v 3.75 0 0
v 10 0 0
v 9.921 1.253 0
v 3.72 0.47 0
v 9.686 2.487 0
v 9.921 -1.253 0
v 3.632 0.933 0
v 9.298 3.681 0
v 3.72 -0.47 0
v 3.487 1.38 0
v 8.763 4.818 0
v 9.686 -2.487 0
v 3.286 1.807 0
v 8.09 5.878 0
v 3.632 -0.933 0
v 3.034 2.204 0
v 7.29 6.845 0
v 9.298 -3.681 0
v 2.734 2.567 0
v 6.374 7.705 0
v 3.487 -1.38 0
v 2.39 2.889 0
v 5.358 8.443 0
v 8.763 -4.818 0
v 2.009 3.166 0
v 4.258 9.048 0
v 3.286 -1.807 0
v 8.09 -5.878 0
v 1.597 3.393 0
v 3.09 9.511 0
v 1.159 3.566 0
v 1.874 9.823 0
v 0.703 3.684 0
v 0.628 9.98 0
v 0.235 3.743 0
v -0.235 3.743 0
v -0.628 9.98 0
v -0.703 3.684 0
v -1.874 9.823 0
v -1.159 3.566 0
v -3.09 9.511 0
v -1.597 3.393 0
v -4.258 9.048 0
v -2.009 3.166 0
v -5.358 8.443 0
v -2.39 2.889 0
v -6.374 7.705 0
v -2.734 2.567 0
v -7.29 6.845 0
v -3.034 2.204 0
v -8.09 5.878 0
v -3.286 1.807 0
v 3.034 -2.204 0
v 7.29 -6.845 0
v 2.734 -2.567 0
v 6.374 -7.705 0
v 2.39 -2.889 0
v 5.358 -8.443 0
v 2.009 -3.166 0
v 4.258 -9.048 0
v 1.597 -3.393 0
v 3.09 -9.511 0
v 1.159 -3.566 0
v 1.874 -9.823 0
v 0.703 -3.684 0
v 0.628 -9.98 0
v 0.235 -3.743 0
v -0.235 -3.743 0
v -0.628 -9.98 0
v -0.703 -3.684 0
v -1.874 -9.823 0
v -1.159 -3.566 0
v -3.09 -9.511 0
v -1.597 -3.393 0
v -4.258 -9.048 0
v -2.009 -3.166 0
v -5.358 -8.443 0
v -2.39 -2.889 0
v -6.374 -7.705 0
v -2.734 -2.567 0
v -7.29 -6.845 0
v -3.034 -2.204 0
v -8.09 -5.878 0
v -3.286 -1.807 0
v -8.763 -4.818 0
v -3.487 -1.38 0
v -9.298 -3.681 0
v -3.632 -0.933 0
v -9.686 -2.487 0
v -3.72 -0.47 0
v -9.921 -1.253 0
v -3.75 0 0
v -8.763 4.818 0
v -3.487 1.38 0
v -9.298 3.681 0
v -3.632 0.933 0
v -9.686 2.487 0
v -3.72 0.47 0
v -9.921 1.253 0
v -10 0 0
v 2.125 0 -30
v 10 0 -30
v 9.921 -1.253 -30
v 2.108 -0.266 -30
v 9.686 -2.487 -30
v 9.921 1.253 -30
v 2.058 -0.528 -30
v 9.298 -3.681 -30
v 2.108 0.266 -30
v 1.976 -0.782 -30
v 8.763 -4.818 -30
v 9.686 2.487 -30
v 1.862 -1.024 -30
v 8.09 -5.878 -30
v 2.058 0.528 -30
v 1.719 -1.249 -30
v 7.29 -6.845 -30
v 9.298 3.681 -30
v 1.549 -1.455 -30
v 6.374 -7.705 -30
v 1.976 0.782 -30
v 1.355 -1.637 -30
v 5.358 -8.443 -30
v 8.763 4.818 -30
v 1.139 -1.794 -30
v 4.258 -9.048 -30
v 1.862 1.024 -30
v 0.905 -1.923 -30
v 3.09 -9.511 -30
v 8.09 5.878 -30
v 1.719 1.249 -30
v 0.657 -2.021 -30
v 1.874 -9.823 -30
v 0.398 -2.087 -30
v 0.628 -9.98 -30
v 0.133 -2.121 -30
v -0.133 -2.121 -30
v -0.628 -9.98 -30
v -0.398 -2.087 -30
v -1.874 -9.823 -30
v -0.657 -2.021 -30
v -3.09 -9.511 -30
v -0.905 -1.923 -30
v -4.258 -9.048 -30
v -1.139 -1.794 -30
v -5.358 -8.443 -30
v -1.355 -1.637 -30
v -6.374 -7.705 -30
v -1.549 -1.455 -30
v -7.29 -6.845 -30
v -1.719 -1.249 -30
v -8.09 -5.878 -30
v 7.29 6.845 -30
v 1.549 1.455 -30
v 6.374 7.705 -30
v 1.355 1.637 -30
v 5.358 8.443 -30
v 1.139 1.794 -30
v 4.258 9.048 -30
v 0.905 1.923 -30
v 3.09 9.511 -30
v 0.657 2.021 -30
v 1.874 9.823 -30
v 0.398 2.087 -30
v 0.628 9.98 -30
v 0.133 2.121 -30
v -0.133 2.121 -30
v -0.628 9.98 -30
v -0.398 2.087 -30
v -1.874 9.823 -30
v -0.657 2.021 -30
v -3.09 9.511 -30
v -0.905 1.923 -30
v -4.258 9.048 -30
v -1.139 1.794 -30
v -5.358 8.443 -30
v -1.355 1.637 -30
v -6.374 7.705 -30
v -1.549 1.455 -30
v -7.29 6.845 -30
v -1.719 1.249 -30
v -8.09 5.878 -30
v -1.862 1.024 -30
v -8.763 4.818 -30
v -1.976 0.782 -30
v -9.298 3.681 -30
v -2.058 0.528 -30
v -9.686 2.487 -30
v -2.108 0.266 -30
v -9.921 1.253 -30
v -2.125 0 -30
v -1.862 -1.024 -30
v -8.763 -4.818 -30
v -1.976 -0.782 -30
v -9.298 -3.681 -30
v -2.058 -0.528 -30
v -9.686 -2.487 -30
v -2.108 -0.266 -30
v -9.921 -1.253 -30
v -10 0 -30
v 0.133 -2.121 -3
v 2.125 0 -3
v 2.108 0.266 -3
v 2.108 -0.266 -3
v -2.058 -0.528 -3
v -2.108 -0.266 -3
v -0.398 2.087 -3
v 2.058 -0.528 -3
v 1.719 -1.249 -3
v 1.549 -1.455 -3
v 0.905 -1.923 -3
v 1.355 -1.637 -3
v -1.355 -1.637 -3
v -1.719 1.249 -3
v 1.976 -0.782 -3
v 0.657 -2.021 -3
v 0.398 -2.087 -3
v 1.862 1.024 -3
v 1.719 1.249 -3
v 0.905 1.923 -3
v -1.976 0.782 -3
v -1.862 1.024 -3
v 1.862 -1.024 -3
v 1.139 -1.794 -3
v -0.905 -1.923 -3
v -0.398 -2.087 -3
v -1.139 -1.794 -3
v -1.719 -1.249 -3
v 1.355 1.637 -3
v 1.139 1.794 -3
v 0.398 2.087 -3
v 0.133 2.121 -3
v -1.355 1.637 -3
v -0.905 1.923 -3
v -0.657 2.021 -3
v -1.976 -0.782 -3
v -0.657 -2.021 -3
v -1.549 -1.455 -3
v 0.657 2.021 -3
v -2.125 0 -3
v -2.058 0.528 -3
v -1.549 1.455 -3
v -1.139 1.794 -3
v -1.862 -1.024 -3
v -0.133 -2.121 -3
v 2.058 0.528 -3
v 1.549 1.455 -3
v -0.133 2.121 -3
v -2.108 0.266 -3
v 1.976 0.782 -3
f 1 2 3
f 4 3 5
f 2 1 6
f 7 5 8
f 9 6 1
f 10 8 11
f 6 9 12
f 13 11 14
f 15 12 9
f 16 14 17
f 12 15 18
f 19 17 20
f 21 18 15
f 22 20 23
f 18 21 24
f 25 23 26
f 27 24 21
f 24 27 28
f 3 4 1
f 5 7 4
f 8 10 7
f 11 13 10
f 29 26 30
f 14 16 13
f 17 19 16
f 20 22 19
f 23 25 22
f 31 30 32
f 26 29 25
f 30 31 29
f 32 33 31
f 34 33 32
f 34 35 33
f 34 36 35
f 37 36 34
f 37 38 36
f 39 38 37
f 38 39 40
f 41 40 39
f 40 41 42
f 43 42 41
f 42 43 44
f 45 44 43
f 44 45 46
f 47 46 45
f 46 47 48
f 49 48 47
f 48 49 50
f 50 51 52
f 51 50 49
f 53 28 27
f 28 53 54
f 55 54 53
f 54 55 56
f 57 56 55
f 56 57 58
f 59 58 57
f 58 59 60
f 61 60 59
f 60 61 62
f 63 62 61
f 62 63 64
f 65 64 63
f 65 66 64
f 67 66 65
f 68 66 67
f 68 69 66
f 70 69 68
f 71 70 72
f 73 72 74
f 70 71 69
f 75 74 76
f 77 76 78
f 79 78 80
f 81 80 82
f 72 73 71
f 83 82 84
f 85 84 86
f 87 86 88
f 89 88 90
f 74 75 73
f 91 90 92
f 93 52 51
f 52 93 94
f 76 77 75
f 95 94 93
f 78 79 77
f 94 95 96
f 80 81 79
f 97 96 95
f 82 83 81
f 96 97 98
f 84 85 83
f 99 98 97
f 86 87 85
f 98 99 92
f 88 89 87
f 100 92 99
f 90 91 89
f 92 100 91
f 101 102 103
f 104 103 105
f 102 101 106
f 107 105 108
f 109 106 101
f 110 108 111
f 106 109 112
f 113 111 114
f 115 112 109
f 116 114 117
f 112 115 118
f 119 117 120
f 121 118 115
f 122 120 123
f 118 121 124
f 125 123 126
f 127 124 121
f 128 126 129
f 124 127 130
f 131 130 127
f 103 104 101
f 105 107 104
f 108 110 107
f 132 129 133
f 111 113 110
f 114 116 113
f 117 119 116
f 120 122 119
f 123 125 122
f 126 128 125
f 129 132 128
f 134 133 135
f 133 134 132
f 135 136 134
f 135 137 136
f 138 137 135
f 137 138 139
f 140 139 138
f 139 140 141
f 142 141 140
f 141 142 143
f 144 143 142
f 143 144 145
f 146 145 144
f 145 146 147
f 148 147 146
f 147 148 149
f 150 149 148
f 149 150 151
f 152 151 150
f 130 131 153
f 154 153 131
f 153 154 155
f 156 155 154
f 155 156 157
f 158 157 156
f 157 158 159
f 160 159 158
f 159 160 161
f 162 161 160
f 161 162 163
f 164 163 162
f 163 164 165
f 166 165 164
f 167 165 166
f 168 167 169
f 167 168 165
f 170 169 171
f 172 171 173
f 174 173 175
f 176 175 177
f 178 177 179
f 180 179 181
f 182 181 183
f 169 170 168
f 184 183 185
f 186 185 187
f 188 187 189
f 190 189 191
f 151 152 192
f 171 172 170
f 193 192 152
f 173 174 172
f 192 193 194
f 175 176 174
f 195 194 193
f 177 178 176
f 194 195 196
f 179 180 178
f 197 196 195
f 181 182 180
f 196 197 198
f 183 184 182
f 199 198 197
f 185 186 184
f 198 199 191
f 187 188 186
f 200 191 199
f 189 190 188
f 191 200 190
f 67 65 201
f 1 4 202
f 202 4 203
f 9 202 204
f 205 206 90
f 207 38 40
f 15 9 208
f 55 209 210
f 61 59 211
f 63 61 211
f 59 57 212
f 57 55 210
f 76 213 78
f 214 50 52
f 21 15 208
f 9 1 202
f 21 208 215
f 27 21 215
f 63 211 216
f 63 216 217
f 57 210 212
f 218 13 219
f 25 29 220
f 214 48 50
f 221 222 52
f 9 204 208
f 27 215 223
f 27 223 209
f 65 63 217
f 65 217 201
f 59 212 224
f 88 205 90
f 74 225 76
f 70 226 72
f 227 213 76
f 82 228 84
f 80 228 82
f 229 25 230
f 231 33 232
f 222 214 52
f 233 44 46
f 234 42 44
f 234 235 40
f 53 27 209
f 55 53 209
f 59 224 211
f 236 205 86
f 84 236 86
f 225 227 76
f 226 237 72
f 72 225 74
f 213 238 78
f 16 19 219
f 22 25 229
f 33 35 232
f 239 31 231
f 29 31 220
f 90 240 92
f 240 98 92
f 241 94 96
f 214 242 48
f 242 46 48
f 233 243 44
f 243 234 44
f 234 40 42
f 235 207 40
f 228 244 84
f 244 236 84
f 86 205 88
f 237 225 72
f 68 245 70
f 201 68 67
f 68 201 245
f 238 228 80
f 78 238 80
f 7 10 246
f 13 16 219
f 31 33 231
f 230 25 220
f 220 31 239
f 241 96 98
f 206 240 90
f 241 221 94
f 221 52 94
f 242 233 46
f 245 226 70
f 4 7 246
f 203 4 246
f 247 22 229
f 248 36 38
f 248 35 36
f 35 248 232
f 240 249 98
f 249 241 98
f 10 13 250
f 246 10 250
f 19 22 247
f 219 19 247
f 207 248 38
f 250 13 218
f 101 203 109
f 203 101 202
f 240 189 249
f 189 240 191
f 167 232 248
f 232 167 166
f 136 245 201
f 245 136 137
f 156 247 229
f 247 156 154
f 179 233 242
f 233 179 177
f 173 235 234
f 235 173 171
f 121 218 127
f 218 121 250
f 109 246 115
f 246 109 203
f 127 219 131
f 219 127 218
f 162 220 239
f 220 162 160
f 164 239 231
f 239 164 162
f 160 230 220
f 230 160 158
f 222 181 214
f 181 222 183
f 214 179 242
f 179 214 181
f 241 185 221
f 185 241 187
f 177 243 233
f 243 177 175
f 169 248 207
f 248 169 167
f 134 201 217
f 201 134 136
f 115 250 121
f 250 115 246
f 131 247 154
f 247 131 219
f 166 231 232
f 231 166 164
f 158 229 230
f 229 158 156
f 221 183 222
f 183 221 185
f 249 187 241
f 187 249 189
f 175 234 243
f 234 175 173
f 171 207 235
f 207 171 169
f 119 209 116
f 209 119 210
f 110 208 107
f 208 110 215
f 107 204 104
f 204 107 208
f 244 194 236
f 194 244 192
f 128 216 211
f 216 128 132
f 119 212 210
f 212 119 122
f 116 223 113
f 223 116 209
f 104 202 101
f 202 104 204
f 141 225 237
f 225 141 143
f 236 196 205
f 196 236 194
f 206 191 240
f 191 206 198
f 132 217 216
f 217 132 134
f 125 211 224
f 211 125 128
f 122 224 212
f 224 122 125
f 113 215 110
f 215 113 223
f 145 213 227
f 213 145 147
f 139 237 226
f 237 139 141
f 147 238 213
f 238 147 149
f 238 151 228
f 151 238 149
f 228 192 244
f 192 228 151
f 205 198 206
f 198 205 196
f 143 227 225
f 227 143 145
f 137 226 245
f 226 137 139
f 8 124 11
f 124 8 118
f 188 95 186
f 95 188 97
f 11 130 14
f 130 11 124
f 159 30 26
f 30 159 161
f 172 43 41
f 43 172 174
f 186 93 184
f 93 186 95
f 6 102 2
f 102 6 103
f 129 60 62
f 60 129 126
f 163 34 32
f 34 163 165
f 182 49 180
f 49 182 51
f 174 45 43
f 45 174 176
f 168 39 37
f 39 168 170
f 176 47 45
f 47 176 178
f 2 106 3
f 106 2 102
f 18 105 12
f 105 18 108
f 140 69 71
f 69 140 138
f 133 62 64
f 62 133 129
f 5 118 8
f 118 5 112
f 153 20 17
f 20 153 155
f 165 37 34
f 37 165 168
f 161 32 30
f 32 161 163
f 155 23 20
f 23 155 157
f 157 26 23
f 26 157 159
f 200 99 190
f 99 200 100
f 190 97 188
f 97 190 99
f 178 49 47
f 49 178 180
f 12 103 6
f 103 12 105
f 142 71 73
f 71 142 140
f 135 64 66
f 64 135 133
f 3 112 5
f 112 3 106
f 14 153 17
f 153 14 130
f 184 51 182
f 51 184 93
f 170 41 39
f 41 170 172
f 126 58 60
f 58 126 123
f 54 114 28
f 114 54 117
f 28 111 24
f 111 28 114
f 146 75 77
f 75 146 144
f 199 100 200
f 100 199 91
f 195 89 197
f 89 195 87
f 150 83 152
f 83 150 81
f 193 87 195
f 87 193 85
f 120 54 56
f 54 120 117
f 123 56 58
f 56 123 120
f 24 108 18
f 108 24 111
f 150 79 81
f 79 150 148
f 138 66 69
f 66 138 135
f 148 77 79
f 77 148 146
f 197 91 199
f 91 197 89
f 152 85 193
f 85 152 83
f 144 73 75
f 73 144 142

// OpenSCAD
$fn = 50;


difference() {
	union() {
		translate(v = [0, 0, -30.0000000000]) {
			cylinder(h = 30, r = 10.0000000000);
		}
		cylinder(h = 0, r = 20.0000000000);
	}
	union() {
		translate(v = [0, 0, 0]) {
			rotate(a = [0, 0, 0]) {
				difference() {
					union() {
						#translate(v = [0, 0, -30.0000000000]) {
							cylinder(h = 30, r = 2.0000000000);
						}
						#translate(v = [0, 0, -3]) {
							cylinder(h = 3, r1 = 2.1250000000, r2 = 3.7500000000);
						}
						#translate(v = [0, 0, -30.0000000000]) {
							cylinder(h = 30, r = 2.1250000000);
						}
						#translate(v = [0, 0, -30.0000000000]) {
							cylinder(h = 30, r = 2.0000000000);
						}
					}
					union();
				}
			}
		}
	}
}
